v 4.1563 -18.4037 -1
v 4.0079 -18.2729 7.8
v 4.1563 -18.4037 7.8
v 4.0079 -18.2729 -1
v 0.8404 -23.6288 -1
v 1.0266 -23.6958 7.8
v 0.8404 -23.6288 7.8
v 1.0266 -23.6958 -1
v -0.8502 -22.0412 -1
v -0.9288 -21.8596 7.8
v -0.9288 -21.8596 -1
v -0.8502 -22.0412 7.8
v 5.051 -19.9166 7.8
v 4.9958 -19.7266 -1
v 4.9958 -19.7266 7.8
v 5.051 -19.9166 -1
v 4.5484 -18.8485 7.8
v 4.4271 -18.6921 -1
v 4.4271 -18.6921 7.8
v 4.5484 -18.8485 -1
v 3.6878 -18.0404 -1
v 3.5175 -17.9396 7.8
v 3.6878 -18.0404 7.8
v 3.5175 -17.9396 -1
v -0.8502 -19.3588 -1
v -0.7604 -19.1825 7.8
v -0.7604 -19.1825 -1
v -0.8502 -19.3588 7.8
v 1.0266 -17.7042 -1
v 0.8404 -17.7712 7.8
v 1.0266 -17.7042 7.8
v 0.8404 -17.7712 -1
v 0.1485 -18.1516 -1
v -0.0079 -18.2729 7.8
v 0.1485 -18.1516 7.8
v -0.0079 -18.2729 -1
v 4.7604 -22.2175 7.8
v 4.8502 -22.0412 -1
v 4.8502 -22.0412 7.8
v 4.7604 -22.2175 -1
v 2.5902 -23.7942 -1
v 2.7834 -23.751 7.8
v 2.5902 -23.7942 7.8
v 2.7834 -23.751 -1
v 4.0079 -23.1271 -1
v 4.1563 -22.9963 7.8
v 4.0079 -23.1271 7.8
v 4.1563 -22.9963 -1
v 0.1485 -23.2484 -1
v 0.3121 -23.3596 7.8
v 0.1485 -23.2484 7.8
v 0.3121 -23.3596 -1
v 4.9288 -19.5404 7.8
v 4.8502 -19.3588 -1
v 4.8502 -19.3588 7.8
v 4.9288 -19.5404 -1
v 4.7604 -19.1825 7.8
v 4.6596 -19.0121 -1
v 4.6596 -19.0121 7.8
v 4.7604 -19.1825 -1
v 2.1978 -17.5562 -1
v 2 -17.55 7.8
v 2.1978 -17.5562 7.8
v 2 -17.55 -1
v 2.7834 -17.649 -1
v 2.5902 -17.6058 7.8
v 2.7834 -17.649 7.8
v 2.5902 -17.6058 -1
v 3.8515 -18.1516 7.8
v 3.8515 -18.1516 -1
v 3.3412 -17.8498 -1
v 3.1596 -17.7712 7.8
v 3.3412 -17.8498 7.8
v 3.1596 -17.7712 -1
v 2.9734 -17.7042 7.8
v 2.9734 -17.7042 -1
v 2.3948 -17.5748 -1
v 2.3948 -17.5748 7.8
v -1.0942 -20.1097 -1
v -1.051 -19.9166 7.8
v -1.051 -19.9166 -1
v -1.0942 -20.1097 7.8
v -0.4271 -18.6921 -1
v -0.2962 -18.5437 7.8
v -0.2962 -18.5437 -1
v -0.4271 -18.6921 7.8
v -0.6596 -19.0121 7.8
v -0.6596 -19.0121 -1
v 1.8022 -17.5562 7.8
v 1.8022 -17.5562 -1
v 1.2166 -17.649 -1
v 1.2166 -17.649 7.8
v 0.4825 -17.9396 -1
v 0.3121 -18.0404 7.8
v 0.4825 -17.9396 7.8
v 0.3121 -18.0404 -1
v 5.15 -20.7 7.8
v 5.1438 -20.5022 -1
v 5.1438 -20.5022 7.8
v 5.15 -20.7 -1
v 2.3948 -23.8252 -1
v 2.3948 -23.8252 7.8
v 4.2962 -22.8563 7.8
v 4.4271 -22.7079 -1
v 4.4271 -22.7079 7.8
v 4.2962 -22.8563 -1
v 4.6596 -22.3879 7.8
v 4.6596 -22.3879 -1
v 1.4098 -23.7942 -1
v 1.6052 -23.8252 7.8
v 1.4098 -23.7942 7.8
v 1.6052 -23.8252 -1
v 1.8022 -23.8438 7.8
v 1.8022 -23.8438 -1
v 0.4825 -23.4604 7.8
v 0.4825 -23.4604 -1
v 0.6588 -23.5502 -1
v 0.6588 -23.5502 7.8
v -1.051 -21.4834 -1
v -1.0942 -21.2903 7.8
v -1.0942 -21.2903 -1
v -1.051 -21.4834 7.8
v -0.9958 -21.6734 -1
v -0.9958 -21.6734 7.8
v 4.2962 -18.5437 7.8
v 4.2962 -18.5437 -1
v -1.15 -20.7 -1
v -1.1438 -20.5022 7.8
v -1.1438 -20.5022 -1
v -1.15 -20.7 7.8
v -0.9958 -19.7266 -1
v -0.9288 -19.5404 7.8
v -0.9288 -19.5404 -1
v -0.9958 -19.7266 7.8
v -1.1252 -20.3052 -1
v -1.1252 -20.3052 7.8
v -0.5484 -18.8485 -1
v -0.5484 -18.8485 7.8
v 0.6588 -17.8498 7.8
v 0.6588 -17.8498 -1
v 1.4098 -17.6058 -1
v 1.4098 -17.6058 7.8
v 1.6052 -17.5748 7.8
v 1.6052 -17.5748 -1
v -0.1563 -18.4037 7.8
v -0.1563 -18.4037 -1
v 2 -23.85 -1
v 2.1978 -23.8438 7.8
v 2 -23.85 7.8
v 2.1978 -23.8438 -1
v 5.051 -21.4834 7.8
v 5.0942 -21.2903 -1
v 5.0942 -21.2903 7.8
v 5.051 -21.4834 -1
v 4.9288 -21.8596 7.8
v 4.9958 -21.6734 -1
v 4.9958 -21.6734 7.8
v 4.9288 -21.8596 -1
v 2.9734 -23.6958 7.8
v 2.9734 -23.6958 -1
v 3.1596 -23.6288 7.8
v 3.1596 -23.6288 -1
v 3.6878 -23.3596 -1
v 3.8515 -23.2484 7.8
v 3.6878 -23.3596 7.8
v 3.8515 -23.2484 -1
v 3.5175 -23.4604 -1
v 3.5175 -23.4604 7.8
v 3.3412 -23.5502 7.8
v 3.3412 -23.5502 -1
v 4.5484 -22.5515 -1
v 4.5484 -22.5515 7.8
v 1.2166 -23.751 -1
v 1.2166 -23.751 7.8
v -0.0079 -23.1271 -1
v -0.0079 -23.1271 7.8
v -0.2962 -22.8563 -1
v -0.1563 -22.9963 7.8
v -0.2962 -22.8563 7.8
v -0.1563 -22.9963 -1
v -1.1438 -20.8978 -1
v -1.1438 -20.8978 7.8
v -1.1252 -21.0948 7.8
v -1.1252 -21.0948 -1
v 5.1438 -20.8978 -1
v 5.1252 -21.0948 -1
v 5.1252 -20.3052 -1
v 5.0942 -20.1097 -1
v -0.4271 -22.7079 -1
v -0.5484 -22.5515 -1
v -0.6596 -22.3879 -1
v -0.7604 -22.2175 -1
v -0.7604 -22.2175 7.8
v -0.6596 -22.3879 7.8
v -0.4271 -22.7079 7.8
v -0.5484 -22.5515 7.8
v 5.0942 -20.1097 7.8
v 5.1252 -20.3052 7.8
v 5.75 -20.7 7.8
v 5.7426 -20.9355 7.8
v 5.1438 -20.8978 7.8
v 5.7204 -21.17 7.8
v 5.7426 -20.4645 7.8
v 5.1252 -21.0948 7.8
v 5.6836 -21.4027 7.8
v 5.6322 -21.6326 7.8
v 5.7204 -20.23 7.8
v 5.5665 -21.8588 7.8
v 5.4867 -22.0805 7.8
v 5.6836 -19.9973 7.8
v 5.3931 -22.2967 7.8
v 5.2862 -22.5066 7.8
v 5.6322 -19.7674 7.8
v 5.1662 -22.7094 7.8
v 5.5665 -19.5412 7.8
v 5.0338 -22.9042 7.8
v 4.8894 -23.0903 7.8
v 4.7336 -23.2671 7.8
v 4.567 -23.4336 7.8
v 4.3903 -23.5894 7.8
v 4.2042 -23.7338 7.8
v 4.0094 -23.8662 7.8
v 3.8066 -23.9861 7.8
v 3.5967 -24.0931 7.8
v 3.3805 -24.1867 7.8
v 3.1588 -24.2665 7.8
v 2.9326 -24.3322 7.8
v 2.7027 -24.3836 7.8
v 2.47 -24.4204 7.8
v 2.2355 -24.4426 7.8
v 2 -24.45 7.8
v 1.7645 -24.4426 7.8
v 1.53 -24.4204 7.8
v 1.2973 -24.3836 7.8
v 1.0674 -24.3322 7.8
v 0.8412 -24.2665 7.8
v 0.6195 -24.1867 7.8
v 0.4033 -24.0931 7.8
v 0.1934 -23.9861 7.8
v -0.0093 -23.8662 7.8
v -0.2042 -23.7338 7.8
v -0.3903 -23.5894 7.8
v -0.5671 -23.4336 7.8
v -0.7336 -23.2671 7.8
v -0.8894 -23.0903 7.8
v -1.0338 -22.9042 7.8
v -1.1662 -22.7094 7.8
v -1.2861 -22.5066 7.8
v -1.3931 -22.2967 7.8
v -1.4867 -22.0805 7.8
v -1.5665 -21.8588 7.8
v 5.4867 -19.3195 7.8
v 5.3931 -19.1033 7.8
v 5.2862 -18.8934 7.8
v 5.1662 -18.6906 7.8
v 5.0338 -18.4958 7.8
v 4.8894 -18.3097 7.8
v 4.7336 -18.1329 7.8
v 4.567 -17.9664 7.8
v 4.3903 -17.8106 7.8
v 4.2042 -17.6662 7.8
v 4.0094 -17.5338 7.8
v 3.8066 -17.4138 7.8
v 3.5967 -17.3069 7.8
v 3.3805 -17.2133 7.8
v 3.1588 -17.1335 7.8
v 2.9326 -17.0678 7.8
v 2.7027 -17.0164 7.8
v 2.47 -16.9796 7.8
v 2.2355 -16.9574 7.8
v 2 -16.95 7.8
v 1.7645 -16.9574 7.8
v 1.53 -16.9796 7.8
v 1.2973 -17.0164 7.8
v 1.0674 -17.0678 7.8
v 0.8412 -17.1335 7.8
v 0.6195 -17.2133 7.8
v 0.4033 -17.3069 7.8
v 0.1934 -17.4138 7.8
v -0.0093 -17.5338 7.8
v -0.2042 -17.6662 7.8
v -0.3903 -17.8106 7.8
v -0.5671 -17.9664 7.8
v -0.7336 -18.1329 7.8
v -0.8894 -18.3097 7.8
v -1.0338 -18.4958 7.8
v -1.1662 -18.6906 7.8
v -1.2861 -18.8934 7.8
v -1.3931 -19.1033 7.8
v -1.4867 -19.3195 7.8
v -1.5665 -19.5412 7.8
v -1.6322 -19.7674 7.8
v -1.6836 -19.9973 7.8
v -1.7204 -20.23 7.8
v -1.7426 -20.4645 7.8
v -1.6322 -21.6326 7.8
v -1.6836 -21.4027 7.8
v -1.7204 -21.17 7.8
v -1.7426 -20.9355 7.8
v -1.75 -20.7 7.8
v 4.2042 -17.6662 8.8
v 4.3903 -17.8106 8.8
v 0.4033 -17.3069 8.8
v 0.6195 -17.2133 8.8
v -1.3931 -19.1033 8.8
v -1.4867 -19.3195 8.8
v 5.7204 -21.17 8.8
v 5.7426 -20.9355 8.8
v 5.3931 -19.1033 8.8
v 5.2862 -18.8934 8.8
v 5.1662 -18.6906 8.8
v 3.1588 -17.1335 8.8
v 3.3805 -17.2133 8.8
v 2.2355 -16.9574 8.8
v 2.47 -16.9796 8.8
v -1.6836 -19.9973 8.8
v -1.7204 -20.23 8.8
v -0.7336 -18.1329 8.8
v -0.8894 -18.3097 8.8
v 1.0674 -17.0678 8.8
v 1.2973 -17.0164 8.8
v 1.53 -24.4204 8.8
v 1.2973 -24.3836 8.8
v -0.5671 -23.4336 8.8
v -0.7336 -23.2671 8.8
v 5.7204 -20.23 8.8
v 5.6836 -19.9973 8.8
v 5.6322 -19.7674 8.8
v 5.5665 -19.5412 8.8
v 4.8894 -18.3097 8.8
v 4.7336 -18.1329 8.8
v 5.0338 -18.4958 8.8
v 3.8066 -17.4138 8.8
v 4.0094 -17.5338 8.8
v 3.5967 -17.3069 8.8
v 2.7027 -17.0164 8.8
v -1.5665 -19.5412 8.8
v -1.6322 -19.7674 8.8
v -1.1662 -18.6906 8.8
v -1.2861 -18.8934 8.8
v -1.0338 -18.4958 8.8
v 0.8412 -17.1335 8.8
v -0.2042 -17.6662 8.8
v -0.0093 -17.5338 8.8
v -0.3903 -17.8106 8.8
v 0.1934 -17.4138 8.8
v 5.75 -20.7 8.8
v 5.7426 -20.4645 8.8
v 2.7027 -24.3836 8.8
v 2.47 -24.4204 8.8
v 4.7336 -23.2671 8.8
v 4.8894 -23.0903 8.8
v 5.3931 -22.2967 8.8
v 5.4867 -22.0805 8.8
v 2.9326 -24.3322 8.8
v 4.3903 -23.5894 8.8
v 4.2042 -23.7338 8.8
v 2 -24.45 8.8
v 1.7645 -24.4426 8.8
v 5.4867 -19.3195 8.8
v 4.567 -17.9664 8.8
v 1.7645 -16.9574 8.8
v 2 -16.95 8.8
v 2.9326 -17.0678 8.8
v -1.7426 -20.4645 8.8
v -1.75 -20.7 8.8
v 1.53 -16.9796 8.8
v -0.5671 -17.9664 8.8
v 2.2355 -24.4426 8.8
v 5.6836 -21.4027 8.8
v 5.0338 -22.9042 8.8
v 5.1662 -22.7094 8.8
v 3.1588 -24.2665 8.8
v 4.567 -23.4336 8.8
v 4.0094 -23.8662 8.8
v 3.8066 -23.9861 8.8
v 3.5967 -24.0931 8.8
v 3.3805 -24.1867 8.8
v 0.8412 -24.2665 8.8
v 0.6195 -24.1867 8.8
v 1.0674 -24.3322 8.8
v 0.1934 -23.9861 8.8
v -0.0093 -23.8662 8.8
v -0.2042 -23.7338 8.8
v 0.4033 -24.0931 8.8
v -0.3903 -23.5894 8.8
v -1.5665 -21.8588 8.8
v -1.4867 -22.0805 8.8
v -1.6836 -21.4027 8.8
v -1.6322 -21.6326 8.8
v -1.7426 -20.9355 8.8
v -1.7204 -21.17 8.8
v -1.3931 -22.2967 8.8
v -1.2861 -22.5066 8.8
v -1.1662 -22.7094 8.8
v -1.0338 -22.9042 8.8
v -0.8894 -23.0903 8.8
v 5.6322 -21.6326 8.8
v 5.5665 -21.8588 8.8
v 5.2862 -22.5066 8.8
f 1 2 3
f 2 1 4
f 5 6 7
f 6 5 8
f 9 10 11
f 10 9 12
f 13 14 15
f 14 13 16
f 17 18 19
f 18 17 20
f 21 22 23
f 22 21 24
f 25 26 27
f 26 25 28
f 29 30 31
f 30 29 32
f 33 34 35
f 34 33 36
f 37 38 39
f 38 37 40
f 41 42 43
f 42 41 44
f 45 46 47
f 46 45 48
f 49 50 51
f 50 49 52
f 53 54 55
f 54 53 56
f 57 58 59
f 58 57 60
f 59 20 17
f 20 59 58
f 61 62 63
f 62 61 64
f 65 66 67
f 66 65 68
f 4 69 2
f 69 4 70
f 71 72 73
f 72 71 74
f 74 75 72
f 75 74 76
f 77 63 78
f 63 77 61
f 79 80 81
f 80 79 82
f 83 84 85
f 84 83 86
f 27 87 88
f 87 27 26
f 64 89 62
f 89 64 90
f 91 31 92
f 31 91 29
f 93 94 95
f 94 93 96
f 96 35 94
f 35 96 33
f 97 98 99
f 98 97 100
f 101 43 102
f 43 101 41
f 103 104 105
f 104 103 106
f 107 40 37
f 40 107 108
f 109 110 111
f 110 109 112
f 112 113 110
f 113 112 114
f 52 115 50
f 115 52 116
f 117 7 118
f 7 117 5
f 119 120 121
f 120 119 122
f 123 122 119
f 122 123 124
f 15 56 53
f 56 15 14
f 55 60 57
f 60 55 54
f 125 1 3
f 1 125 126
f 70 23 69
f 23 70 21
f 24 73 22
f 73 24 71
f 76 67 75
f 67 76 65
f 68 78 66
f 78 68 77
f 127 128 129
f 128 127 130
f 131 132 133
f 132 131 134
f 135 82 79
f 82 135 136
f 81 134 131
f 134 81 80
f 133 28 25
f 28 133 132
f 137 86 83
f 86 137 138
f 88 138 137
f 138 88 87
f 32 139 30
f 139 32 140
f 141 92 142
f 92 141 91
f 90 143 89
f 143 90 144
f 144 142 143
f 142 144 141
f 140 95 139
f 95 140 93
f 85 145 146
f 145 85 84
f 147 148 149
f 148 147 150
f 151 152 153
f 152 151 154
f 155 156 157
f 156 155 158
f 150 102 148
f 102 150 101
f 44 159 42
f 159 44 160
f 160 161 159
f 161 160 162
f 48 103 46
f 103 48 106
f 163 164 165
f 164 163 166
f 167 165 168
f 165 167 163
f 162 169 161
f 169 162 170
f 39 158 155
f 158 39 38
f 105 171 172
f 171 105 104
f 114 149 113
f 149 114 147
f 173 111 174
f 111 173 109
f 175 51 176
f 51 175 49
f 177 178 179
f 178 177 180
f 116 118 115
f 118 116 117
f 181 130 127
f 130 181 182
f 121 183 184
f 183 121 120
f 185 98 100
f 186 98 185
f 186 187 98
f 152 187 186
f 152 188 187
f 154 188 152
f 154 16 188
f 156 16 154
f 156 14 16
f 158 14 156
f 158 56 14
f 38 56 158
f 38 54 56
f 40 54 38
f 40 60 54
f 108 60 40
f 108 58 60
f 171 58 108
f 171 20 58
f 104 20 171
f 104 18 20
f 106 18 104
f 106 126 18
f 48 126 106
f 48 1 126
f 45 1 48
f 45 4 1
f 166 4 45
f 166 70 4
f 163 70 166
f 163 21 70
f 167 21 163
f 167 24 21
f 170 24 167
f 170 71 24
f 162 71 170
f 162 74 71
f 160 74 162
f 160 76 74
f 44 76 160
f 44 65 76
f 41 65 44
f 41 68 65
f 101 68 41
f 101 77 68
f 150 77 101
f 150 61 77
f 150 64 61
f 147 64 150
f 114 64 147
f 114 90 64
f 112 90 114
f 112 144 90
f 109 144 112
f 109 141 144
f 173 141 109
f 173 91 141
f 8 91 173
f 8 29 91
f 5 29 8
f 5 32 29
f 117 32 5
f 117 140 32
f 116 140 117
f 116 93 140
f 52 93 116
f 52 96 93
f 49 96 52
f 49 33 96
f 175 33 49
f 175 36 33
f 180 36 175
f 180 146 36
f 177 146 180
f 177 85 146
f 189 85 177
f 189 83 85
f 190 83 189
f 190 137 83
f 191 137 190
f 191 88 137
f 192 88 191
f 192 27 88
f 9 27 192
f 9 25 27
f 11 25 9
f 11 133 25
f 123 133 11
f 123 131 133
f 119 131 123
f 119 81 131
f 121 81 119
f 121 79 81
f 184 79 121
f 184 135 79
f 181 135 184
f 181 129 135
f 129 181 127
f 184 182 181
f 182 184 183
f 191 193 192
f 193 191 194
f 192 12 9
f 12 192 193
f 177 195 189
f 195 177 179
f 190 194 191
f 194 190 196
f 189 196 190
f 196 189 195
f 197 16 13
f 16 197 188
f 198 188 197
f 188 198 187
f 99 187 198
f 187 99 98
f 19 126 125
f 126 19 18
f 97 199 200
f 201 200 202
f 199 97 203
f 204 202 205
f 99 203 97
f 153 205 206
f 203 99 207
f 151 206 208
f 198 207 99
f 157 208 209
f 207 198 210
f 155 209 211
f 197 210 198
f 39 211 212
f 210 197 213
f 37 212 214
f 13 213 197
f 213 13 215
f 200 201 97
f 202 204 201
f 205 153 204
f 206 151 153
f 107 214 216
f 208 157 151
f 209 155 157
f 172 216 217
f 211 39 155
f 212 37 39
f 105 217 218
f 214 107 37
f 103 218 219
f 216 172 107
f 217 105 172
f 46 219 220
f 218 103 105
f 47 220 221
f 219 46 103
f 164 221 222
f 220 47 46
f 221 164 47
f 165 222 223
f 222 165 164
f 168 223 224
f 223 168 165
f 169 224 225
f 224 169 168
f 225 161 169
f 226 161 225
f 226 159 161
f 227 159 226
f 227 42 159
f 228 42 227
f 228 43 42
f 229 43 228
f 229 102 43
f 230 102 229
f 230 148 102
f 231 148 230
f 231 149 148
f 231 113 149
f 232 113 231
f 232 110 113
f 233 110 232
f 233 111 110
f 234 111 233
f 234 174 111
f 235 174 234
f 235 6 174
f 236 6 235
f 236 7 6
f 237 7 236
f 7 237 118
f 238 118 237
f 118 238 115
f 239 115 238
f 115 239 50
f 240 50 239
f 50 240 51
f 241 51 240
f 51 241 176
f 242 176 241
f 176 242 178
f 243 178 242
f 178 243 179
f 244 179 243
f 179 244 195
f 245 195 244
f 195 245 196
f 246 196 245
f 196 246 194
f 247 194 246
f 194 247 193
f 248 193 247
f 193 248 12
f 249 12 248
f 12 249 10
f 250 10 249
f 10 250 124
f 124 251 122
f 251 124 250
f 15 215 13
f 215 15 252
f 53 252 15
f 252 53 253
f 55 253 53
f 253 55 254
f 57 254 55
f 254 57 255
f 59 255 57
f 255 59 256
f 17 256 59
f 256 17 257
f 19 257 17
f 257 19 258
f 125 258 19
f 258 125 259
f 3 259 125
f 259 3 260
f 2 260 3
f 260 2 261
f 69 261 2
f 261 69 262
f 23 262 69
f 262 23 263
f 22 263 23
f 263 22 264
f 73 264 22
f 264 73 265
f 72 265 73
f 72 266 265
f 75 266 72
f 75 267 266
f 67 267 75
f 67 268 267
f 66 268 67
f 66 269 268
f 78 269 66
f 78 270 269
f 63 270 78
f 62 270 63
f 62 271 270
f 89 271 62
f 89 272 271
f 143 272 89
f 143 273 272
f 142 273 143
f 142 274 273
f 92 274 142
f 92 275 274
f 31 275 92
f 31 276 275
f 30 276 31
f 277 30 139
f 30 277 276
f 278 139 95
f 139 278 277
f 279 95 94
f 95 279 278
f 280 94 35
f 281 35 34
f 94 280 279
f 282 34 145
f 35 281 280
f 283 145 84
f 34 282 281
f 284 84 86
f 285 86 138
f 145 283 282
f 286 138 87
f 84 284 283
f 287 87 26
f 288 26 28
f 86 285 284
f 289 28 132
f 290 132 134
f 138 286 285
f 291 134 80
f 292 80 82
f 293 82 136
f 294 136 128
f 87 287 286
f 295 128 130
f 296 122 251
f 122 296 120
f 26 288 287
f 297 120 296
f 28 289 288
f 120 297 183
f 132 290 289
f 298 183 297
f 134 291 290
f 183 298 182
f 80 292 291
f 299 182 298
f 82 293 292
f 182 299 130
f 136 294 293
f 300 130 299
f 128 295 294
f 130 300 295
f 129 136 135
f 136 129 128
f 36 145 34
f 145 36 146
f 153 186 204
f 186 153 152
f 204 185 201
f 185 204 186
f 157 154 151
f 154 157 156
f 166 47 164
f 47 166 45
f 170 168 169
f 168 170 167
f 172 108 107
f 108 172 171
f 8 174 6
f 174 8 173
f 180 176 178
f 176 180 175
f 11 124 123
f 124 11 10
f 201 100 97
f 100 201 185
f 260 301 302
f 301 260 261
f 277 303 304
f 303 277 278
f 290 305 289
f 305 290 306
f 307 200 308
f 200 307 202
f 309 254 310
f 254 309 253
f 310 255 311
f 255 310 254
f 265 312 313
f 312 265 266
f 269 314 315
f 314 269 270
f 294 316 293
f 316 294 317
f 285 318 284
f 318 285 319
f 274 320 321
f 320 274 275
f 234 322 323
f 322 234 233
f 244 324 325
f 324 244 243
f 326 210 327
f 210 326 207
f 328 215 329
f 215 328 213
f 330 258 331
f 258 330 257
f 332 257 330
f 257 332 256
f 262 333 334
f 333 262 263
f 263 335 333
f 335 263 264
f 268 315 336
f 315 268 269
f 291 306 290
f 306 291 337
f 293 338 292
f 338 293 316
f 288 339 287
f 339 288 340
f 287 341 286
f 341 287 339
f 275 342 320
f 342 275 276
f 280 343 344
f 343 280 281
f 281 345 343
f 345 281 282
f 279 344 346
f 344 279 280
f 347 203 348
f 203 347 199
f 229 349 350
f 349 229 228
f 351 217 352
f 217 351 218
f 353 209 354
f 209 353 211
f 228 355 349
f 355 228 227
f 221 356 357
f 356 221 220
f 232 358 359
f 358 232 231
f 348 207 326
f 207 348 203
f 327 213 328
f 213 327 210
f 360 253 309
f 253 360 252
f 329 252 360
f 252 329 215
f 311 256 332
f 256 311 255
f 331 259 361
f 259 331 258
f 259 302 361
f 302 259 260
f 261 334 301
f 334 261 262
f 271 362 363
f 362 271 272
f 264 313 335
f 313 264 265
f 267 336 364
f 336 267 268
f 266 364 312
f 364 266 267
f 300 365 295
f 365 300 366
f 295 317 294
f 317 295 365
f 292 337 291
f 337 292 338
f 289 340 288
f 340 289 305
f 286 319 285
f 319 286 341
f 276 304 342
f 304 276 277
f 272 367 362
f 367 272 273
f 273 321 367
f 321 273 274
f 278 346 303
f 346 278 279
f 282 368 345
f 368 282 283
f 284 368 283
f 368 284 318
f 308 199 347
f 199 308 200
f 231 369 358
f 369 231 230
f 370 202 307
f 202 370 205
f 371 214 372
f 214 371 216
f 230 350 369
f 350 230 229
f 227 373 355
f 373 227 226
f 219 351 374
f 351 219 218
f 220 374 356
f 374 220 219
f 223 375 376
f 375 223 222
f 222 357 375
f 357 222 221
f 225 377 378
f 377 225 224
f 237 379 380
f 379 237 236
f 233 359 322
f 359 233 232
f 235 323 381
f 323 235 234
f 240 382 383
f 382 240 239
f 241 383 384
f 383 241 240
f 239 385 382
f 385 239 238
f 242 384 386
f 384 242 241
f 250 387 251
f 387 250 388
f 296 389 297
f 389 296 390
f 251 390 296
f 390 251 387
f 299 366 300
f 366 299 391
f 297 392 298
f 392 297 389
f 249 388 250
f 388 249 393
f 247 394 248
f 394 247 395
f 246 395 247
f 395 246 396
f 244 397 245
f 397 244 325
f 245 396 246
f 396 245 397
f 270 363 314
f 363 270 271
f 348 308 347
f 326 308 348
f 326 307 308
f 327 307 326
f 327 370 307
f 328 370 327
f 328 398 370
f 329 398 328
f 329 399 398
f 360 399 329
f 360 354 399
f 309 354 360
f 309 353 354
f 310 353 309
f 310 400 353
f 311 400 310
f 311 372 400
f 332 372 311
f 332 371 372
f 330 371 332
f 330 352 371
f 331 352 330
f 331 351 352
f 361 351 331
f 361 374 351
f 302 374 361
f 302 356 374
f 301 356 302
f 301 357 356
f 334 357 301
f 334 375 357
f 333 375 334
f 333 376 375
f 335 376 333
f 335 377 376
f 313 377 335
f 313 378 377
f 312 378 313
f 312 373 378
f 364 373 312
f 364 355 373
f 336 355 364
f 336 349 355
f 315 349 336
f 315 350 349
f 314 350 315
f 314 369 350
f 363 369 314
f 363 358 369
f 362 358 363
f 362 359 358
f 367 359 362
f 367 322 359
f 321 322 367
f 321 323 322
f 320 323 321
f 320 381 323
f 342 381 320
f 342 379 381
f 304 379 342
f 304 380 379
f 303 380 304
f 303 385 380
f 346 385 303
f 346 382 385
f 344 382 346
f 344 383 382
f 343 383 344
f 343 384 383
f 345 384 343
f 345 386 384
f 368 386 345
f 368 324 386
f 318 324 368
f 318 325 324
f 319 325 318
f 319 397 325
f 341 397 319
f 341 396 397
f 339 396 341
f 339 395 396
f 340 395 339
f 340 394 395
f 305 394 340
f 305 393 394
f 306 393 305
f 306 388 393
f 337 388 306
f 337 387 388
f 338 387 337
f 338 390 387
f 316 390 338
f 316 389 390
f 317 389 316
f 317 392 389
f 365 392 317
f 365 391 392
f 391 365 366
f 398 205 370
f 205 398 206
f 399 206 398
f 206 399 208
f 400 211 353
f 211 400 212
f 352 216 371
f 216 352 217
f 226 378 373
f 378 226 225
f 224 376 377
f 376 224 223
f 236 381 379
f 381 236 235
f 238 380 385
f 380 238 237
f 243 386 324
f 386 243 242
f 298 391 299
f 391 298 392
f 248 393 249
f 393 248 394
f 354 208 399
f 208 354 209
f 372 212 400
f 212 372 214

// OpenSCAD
$fn=100;
h1_Knopf = 5+0.5+1.3;
h2_Knopf = 5; // Für alle anderen Knöpfe
h1_Knopf = 5+0.5+3.3;
h2_Knopf = 1; // für on/off Knopf
translate([2,-20.7, -1]) cylinder(d=6.3, h=h1_Knopf);
translate([2,-20.7, h1_Knopf-1]) cylinder(d=7.5, h=h2_Knopf);
